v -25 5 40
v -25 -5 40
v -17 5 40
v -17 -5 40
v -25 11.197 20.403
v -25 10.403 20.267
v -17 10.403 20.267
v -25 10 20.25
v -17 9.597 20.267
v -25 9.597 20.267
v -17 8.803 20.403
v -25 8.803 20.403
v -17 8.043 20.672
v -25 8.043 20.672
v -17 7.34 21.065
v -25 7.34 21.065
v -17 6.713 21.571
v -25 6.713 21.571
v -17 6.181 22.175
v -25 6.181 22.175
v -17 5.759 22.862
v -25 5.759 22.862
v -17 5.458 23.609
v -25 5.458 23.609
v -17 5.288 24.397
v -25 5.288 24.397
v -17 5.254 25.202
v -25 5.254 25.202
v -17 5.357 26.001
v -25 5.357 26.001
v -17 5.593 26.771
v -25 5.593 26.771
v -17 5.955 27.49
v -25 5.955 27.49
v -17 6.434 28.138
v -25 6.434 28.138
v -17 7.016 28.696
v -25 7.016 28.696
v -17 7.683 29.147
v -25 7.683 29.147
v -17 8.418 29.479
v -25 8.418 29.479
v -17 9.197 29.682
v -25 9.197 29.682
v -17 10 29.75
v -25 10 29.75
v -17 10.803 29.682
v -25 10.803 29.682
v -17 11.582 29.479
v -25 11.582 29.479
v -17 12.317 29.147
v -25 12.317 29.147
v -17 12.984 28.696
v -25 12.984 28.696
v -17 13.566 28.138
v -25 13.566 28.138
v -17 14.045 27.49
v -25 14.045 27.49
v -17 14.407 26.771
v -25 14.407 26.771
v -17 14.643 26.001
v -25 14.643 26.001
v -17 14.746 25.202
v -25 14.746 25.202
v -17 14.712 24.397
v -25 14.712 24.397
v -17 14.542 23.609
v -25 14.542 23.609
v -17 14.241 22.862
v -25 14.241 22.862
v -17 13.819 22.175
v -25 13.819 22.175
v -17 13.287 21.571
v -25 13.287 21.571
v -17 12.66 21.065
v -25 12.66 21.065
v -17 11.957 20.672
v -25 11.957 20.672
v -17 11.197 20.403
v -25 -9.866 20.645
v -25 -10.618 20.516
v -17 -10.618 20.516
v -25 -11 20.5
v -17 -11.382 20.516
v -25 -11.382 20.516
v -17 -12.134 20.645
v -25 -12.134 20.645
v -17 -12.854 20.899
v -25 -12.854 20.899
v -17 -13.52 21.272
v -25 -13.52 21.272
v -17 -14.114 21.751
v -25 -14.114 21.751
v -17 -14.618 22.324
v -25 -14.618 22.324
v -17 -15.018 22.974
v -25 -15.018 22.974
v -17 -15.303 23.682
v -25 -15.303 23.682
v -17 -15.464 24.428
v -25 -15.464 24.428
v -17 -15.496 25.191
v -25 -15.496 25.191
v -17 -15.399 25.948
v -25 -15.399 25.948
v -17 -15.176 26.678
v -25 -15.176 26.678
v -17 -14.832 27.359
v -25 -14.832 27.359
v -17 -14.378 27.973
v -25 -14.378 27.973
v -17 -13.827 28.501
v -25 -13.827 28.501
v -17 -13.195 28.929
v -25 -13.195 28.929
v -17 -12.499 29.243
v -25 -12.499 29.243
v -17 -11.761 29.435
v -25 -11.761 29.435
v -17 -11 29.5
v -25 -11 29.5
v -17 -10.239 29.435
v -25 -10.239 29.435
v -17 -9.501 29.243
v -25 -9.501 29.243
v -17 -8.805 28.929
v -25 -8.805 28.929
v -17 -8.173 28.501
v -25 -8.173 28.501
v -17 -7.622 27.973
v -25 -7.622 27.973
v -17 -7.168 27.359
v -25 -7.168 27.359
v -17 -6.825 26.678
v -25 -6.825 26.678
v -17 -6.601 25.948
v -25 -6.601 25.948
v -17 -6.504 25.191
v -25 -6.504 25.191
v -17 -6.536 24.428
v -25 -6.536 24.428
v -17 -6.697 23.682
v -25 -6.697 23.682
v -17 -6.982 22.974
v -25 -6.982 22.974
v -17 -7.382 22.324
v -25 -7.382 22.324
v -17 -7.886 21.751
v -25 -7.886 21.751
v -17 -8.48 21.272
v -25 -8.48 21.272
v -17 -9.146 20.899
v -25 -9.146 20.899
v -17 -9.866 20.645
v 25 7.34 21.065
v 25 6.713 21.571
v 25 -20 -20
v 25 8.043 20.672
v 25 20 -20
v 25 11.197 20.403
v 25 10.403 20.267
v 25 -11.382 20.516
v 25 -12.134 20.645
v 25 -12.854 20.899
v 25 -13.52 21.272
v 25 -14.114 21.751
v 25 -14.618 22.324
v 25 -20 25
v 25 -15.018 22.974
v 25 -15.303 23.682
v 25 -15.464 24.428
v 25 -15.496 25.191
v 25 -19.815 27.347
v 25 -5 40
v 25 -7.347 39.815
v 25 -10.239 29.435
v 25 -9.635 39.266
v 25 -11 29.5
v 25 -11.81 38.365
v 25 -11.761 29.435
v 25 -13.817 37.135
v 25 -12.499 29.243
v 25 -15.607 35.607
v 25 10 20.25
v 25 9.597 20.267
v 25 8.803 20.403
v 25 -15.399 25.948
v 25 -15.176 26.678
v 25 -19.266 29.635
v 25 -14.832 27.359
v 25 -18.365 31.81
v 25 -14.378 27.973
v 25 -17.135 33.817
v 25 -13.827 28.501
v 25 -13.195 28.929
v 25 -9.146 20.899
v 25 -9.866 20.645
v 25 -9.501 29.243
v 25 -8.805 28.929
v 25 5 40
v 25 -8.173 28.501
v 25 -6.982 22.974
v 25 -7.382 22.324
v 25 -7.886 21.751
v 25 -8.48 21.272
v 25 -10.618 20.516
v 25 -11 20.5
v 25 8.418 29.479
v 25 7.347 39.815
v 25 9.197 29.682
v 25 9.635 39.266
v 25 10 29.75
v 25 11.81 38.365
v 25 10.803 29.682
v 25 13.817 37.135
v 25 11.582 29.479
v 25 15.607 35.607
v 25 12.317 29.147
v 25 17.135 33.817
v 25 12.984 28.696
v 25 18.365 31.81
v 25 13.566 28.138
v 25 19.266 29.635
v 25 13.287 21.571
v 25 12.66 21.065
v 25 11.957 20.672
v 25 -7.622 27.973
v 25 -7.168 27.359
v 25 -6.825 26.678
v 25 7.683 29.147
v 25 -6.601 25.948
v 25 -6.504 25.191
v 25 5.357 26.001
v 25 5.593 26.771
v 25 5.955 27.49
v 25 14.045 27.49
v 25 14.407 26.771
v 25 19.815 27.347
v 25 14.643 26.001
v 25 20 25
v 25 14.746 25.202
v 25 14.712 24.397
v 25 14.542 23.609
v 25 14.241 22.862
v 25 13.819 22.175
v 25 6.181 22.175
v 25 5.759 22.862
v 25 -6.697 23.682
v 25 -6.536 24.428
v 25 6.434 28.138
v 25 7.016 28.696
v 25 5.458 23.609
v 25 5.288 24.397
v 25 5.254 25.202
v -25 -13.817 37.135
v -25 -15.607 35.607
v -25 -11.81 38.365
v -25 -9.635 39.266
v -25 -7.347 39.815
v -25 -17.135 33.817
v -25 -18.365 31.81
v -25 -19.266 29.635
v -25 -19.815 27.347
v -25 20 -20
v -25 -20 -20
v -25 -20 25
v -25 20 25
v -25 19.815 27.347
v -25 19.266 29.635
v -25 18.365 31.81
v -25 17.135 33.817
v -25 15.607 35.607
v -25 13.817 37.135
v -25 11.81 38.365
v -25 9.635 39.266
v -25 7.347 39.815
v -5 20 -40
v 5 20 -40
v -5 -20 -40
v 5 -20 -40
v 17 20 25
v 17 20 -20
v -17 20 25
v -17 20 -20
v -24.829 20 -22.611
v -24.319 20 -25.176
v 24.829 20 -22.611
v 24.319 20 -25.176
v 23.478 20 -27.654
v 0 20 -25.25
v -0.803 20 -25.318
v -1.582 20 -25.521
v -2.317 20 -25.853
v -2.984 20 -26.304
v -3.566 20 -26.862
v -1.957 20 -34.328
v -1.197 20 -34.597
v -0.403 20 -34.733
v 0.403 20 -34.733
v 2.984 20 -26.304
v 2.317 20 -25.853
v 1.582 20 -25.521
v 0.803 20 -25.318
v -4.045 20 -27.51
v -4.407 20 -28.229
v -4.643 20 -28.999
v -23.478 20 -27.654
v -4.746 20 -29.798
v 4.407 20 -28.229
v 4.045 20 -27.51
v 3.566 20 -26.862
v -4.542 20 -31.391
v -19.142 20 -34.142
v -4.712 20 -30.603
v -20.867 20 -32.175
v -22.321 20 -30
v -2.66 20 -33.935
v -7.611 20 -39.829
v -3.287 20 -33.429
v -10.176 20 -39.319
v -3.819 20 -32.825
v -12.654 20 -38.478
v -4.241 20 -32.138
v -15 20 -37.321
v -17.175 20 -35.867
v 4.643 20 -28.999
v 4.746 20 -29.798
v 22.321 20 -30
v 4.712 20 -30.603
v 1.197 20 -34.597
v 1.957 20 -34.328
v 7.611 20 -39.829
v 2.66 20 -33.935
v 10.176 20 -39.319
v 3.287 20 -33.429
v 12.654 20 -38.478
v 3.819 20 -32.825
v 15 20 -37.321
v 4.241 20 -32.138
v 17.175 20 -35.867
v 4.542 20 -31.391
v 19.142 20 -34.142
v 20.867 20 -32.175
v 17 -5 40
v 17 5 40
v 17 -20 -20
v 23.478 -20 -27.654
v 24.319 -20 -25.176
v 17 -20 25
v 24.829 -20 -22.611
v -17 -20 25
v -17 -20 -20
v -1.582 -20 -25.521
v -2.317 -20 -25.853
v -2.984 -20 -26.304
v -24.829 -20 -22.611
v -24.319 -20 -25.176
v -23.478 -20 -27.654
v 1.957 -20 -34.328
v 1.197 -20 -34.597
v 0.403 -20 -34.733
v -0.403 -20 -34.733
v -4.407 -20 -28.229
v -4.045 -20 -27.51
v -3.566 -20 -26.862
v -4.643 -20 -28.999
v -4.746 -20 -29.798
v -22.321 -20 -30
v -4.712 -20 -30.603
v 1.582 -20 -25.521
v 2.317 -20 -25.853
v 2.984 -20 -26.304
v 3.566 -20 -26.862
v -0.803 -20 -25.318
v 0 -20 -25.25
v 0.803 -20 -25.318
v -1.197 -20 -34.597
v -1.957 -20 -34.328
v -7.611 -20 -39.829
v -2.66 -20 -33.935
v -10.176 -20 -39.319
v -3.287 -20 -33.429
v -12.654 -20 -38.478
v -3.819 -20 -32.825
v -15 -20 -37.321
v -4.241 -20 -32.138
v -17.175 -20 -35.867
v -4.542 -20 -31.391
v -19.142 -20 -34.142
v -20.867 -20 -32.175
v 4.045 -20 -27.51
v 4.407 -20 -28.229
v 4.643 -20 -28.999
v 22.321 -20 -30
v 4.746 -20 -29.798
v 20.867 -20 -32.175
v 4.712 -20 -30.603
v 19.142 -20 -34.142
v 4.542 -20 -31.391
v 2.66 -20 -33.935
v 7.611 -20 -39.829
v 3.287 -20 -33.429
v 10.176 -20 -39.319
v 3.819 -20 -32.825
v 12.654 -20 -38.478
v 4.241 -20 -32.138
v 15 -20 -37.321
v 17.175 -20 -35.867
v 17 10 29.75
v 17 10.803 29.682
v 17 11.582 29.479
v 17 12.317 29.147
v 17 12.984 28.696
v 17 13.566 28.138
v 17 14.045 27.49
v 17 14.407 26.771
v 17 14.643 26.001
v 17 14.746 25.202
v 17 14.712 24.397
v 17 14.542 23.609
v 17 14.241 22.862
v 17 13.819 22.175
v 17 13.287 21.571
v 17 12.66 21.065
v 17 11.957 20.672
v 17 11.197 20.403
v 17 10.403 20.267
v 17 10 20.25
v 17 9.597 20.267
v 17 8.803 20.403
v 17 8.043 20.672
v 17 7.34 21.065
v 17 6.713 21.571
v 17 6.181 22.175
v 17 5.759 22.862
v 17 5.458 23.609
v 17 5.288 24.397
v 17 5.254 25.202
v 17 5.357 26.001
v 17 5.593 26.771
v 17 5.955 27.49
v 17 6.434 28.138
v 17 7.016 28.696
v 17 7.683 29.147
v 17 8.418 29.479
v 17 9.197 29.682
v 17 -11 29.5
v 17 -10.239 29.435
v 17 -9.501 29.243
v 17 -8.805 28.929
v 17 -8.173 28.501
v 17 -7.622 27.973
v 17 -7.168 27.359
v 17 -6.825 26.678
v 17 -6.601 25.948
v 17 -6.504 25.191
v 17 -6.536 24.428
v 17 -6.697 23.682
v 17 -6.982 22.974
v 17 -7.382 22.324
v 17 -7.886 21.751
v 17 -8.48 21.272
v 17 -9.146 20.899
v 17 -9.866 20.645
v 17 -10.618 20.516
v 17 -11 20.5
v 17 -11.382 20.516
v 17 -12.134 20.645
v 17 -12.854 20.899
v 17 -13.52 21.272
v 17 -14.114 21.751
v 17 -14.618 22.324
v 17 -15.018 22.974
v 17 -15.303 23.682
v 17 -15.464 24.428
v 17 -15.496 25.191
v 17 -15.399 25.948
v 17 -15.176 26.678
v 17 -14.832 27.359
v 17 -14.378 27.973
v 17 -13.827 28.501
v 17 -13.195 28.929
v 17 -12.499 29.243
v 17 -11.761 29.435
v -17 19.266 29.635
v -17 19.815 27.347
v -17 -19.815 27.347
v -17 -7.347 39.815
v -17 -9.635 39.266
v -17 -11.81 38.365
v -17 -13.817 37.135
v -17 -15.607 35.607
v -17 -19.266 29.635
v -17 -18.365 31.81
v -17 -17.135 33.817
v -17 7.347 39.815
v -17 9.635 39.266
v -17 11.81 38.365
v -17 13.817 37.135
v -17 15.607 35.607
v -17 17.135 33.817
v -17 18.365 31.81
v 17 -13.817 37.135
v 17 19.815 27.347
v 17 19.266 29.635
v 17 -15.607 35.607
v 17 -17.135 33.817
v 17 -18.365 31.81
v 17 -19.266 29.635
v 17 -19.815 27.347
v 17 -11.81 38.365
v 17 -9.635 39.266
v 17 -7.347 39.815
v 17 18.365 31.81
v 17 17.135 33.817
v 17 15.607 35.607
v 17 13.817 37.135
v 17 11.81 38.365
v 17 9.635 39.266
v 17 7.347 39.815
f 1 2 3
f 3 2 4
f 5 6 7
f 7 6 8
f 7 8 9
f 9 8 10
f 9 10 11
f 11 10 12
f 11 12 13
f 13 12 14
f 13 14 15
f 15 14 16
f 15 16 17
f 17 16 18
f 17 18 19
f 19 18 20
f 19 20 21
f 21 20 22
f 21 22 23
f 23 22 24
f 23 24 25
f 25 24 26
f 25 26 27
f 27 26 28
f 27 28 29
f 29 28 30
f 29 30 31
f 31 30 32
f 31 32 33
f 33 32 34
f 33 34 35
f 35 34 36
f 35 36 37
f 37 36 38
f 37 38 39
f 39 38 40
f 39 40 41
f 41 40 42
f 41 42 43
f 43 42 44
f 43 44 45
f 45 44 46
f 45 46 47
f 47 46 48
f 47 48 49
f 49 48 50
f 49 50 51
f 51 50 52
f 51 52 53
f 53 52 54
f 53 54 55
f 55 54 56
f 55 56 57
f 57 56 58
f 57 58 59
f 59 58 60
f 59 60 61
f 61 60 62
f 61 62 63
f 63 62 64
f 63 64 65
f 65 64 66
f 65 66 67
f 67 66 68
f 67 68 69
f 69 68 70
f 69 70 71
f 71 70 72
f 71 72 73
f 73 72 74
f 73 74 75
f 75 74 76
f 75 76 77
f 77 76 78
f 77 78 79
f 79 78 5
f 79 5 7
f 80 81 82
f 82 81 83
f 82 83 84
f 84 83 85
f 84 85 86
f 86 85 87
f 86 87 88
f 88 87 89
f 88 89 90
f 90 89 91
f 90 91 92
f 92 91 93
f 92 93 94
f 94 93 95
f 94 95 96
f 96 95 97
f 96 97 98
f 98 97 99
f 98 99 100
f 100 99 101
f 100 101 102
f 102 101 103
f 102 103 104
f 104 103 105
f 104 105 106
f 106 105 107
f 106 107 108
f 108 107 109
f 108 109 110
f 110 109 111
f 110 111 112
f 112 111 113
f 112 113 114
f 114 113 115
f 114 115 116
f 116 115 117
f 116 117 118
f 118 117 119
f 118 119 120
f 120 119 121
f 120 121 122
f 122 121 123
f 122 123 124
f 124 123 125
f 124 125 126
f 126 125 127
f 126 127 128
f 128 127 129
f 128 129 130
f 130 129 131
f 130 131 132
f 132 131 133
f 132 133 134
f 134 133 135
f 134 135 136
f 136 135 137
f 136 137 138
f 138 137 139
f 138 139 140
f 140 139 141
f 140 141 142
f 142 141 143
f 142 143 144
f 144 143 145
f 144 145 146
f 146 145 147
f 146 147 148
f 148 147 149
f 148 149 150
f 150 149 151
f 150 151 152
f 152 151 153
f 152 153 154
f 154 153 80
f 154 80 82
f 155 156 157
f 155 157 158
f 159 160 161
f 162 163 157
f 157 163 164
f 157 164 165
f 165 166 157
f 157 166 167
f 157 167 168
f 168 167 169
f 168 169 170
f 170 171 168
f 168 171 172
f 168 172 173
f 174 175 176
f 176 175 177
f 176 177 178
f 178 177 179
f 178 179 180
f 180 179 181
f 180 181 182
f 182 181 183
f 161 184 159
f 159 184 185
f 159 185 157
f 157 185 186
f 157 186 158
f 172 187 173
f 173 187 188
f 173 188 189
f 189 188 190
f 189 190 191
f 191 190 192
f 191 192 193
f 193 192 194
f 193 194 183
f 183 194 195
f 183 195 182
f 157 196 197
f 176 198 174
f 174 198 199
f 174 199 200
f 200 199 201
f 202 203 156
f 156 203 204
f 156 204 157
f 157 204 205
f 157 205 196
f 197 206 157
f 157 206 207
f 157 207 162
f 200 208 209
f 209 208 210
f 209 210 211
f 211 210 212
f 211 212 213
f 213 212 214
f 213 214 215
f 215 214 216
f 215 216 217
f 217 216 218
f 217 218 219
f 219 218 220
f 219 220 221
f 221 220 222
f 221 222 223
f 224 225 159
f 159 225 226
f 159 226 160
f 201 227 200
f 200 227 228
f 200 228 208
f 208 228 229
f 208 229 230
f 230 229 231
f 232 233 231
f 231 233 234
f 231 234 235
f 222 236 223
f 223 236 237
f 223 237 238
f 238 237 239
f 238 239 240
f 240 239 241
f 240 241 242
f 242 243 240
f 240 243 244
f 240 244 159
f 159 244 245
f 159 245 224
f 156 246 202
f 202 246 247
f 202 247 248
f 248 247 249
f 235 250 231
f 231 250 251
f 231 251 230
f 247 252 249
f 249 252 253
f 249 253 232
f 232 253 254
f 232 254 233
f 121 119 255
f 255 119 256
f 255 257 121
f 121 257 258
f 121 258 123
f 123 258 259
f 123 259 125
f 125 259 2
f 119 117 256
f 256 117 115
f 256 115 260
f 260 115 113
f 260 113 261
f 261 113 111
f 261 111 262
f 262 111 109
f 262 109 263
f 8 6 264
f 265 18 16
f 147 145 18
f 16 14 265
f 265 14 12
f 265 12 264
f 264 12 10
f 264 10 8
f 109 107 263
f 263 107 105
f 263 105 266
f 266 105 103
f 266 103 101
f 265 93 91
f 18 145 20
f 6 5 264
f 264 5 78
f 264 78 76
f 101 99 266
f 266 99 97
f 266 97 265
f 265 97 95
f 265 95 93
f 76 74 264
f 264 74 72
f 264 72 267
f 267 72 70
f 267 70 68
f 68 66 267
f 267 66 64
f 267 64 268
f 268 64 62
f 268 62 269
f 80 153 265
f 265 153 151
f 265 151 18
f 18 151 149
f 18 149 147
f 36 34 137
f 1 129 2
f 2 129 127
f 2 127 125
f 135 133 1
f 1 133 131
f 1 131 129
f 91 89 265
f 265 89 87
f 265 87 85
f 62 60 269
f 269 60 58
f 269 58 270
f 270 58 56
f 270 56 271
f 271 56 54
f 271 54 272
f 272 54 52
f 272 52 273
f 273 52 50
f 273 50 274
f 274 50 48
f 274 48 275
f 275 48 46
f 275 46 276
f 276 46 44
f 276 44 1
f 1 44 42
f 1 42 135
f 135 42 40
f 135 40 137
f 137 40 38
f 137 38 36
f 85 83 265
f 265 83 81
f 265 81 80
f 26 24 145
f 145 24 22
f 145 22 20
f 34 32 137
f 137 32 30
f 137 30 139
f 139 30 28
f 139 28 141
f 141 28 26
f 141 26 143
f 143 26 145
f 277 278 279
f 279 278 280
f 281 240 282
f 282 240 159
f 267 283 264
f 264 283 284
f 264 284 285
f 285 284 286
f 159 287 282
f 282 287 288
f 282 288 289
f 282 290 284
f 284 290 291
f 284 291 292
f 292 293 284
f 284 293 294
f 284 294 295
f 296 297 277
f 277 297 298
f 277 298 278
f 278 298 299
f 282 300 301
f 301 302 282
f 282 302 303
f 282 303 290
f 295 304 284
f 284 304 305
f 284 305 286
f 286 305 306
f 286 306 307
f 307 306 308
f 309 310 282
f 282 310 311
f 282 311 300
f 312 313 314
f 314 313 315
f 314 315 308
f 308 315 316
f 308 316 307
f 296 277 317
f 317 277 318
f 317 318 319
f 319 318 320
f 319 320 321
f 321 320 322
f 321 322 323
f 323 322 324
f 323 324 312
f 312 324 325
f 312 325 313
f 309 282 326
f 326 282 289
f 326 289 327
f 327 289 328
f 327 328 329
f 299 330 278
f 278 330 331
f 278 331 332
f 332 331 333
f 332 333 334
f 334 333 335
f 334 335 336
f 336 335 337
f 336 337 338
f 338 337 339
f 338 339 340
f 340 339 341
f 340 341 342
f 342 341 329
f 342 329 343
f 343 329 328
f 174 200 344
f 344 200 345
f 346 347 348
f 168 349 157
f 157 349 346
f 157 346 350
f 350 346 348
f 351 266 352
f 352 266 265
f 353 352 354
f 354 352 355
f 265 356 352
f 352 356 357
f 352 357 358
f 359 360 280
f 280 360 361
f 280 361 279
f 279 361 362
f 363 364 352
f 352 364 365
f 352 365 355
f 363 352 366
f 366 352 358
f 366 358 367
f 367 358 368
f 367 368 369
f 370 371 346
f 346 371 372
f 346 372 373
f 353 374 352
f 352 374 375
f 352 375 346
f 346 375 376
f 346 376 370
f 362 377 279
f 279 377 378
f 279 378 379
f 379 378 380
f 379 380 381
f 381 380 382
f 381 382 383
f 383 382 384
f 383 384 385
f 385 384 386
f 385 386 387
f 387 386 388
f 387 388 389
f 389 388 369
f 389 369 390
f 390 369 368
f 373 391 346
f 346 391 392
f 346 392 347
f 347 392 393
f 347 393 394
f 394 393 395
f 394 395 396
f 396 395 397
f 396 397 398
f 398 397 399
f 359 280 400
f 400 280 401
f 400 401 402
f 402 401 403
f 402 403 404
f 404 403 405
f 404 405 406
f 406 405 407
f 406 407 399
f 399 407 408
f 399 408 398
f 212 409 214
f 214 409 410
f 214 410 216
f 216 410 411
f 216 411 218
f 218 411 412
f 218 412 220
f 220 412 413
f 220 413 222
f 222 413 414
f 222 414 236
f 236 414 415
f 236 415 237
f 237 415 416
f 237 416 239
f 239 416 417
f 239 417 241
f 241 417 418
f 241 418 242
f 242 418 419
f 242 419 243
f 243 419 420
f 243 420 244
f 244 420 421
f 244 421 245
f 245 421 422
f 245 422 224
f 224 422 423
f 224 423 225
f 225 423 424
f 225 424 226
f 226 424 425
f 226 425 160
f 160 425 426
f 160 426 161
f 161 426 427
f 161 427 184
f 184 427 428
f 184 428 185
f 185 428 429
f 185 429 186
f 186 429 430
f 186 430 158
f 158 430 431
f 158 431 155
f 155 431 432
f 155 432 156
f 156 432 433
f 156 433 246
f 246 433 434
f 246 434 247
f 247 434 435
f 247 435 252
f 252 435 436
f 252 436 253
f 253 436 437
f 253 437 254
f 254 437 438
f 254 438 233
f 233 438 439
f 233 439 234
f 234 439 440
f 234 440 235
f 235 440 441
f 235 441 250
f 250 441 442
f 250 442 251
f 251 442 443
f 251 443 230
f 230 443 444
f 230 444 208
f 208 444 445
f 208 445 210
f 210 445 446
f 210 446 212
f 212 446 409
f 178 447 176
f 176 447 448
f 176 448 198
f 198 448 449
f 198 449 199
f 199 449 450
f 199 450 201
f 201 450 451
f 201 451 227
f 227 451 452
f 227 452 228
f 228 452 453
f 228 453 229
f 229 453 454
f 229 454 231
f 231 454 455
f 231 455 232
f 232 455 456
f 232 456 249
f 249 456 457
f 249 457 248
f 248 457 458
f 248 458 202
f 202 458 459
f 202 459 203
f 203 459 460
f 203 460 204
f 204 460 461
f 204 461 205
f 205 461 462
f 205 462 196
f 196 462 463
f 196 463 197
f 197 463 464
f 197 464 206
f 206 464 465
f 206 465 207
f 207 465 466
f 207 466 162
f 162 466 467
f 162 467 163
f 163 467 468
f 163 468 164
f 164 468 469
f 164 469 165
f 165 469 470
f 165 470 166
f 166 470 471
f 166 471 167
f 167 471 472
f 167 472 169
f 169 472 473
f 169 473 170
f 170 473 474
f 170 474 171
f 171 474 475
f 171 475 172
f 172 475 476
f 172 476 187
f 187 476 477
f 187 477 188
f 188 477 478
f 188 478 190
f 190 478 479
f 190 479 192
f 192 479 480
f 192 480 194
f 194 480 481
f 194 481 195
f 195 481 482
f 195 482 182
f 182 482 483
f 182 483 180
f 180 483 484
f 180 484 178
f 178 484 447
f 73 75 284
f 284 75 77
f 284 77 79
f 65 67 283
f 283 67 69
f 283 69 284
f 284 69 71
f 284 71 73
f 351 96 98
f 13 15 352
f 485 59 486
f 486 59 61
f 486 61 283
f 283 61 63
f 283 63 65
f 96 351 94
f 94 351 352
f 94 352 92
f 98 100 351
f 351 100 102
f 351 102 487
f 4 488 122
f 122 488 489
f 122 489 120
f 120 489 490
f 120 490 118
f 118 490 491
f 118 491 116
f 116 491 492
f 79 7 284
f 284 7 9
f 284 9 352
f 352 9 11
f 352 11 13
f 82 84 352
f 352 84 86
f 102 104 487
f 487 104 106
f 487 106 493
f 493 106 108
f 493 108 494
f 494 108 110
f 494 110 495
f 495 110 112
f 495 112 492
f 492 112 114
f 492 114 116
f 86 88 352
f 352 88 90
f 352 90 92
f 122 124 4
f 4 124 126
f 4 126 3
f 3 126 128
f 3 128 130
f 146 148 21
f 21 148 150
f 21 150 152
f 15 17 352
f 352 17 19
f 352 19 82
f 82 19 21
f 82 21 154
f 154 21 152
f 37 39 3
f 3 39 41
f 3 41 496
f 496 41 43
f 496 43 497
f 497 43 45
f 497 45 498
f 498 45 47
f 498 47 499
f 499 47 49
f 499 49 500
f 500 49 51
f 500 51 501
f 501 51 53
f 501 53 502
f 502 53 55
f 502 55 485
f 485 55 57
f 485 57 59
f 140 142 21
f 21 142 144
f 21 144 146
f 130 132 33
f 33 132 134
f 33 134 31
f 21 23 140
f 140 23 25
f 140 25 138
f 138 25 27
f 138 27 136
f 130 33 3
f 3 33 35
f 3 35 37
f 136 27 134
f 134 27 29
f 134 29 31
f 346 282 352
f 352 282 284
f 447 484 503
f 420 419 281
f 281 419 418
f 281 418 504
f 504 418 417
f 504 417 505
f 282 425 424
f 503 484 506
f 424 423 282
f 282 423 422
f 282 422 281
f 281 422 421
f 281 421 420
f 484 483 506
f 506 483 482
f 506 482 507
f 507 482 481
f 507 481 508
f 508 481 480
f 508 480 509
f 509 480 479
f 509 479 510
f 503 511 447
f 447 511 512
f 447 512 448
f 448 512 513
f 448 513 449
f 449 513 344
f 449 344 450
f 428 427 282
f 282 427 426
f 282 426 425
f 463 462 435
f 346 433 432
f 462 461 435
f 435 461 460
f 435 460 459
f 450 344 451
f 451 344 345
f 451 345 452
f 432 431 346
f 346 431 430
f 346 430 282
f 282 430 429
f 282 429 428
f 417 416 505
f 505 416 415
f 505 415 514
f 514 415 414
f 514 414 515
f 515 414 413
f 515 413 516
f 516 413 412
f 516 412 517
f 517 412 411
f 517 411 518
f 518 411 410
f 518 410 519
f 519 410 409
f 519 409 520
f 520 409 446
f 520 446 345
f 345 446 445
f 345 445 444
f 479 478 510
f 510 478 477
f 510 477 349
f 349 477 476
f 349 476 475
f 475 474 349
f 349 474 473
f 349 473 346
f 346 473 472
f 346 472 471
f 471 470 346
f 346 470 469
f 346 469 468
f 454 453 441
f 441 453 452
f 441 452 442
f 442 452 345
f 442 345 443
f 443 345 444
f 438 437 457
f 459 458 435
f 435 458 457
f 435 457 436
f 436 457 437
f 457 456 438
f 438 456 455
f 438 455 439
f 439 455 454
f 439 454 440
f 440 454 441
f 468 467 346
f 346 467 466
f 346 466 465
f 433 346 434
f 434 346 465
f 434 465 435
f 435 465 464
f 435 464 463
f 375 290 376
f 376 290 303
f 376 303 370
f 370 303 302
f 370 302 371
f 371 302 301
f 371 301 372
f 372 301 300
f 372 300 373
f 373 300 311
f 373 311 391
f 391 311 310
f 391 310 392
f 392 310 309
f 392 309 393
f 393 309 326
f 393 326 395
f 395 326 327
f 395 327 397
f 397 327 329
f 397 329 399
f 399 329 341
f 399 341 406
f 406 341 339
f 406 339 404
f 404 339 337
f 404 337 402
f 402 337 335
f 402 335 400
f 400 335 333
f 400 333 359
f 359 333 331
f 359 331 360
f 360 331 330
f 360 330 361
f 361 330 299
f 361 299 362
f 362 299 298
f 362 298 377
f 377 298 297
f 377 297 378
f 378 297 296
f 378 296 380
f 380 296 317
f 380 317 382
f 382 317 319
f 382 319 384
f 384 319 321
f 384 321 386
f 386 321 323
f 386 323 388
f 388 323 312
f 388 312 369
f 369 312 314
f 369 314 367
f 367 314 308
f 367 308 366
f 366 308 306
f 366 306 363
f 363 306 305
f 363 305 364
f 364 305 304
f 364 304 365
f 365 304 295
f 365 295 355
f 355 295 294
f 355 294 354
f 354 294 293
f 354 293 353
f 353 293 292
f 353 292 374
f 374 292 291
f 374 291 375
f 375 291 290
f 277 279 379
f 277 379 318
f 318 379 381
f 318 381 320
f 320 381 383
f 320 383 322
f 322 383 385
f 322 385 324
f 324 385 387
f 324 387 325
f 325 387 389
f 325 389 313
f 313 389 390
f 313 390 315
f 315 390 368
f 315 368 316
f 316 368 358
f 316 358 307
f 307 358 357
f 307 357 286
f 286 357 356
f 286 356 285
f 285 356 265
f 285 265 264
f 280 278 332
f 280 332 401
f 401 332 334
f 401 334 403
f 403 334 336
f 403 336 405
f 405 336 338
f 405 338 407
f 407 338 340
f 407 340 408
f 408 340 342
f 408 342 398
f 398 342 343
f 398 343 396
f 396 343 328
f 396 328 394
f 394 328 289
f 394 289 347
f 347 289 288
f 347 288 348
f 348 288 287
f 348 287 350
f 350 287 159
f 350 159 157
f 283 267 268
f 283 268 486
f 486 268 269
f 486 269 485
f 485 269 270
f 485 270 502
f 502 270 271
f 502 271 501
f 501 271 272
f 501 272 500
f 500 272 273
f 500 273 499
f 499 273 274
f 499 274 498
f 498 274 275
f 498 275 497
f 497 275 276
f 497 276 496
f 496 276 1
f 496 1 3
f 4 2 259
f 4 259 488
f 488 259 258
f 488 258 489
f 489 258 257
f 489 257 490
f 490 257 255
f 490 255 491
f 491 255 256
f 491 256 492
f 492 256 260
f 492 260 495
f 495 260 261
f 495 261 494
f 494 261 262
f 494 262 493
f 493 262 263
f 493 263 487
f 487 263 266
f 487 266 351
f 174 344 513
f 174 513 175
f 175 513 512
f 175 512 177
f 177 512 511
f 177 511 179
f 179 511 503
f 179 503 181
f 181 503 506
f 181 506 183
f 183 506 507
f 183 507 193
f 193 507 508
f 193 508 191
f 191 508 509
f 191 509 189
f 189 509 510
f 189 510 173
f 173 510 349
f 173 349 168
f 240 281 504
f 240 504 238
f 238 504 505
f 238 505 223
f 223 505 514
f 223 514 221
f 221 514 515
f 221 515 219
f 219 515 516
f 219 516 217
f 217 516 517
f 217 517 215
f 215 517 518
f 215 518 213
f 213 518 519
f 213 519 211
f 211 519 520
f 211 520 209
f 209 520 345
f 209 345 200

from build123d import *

# Parameters (mm, degrees)
SKETCH4_W               = 80
SKETCH4_H               = 40
SKETCH4_R               = 4.75
SKETCH4_R_2             = 4.5
BOSS_EXTRUDE2_DEPTH     = 25
CUT_EXTRUDE3_DEPTH      = 52.23475383
CUT_EXTRUDE3_DEPTH_BACK = 52.23475383
SKETCH5_W               = 34
SKETCH5_H               = 60
CUT_EXTRUDE4_DEPTH      = 52.23475383
CUT_EXTRUDE4_DEPTH_BACK = 52.23475383
SKETCH6_R               = 4.75
FILLET1_R               = 20
FILLET3_R               = 15


with BuildPart() as part:
    # Sketch4 → Boss-Extrude2 (new, symmetric)
    with BuildSketch(Plane(origin=(0, 0, 0), x_dir=(0, 0, -1), z_dir=(1, 0, 0))):
        Rectangle(SKETCH4_W, SKETCH4_H)
        with Locations((-25, 10)):
            Circle(SKETCH4_R, mode=Mode.SUBTRACT)
        with Locations((-25, -11)):
            Circle(SKETCH4_R_2, mode=Mode.SUBTRACT)
    extrude(amount=BOSS_EXTRUDE2_DEPTH, both=True)

    # Sketch5 → Cut-Extrude3 (cut, two sides: drawn at the far end of the back side and taken through both)
    with BuildSketch(Plane(origin=(0, 0, 0), x_dir=(1, 0, 0), z_dir=(0, 1, 0)).offset(-CUT_EXTRUDE3_DEPTH_BACK)):
        with Locations((0, -10)):
            Rectangle(SKETCH5_W, SKETCH5_H)
    extrude(amount=CUT_EXTRUDE3_DEPTH + CUT_EXTRUDE3_DEPTH_BACK, mode=Mode.SUBTRACT)

    # Sketch6 → Cut-Extrude4 (cut, two sides: drawn at the far end of the back side and taken through both)
    with BuildSketch(Plane(origin=(0, 0, 0), x_dir=(1, 0, 0), z_dir=(0, 1, 0)).offset(-CUT_EXTRUDE4_DEPTH_BACK)):
        with Locations(Location((0, 30, 0), (0, 0, 270))):
            Circle(SKETCH6_R)
    extrude(amount=CUT_EXTRUDE4_DEPTH + CUT_EXTRUDE4_DEPTH_BACK, mode=Mode.SUBTRACT)

    # Fillet1
    fillet1_edges = [part.edges().sort_by_distance(p)[0] for p in [
        (25, 0, -40),
        (-25, 0, -40),
    ]]
    fillet(fillet1_edges, radius=FILLET1_R)

    # Fillet3
    fillet3_edges = [part.edges().sort_by_distance(p)[0] for p in [
        (-21, -20, 40),
        (-21, 20, 40),
        (21, -20, 40),
        (21, 20, 40),
    ]]
    fillet(fillet3_edges, radius=FILLET3_R)


solid = part.part
